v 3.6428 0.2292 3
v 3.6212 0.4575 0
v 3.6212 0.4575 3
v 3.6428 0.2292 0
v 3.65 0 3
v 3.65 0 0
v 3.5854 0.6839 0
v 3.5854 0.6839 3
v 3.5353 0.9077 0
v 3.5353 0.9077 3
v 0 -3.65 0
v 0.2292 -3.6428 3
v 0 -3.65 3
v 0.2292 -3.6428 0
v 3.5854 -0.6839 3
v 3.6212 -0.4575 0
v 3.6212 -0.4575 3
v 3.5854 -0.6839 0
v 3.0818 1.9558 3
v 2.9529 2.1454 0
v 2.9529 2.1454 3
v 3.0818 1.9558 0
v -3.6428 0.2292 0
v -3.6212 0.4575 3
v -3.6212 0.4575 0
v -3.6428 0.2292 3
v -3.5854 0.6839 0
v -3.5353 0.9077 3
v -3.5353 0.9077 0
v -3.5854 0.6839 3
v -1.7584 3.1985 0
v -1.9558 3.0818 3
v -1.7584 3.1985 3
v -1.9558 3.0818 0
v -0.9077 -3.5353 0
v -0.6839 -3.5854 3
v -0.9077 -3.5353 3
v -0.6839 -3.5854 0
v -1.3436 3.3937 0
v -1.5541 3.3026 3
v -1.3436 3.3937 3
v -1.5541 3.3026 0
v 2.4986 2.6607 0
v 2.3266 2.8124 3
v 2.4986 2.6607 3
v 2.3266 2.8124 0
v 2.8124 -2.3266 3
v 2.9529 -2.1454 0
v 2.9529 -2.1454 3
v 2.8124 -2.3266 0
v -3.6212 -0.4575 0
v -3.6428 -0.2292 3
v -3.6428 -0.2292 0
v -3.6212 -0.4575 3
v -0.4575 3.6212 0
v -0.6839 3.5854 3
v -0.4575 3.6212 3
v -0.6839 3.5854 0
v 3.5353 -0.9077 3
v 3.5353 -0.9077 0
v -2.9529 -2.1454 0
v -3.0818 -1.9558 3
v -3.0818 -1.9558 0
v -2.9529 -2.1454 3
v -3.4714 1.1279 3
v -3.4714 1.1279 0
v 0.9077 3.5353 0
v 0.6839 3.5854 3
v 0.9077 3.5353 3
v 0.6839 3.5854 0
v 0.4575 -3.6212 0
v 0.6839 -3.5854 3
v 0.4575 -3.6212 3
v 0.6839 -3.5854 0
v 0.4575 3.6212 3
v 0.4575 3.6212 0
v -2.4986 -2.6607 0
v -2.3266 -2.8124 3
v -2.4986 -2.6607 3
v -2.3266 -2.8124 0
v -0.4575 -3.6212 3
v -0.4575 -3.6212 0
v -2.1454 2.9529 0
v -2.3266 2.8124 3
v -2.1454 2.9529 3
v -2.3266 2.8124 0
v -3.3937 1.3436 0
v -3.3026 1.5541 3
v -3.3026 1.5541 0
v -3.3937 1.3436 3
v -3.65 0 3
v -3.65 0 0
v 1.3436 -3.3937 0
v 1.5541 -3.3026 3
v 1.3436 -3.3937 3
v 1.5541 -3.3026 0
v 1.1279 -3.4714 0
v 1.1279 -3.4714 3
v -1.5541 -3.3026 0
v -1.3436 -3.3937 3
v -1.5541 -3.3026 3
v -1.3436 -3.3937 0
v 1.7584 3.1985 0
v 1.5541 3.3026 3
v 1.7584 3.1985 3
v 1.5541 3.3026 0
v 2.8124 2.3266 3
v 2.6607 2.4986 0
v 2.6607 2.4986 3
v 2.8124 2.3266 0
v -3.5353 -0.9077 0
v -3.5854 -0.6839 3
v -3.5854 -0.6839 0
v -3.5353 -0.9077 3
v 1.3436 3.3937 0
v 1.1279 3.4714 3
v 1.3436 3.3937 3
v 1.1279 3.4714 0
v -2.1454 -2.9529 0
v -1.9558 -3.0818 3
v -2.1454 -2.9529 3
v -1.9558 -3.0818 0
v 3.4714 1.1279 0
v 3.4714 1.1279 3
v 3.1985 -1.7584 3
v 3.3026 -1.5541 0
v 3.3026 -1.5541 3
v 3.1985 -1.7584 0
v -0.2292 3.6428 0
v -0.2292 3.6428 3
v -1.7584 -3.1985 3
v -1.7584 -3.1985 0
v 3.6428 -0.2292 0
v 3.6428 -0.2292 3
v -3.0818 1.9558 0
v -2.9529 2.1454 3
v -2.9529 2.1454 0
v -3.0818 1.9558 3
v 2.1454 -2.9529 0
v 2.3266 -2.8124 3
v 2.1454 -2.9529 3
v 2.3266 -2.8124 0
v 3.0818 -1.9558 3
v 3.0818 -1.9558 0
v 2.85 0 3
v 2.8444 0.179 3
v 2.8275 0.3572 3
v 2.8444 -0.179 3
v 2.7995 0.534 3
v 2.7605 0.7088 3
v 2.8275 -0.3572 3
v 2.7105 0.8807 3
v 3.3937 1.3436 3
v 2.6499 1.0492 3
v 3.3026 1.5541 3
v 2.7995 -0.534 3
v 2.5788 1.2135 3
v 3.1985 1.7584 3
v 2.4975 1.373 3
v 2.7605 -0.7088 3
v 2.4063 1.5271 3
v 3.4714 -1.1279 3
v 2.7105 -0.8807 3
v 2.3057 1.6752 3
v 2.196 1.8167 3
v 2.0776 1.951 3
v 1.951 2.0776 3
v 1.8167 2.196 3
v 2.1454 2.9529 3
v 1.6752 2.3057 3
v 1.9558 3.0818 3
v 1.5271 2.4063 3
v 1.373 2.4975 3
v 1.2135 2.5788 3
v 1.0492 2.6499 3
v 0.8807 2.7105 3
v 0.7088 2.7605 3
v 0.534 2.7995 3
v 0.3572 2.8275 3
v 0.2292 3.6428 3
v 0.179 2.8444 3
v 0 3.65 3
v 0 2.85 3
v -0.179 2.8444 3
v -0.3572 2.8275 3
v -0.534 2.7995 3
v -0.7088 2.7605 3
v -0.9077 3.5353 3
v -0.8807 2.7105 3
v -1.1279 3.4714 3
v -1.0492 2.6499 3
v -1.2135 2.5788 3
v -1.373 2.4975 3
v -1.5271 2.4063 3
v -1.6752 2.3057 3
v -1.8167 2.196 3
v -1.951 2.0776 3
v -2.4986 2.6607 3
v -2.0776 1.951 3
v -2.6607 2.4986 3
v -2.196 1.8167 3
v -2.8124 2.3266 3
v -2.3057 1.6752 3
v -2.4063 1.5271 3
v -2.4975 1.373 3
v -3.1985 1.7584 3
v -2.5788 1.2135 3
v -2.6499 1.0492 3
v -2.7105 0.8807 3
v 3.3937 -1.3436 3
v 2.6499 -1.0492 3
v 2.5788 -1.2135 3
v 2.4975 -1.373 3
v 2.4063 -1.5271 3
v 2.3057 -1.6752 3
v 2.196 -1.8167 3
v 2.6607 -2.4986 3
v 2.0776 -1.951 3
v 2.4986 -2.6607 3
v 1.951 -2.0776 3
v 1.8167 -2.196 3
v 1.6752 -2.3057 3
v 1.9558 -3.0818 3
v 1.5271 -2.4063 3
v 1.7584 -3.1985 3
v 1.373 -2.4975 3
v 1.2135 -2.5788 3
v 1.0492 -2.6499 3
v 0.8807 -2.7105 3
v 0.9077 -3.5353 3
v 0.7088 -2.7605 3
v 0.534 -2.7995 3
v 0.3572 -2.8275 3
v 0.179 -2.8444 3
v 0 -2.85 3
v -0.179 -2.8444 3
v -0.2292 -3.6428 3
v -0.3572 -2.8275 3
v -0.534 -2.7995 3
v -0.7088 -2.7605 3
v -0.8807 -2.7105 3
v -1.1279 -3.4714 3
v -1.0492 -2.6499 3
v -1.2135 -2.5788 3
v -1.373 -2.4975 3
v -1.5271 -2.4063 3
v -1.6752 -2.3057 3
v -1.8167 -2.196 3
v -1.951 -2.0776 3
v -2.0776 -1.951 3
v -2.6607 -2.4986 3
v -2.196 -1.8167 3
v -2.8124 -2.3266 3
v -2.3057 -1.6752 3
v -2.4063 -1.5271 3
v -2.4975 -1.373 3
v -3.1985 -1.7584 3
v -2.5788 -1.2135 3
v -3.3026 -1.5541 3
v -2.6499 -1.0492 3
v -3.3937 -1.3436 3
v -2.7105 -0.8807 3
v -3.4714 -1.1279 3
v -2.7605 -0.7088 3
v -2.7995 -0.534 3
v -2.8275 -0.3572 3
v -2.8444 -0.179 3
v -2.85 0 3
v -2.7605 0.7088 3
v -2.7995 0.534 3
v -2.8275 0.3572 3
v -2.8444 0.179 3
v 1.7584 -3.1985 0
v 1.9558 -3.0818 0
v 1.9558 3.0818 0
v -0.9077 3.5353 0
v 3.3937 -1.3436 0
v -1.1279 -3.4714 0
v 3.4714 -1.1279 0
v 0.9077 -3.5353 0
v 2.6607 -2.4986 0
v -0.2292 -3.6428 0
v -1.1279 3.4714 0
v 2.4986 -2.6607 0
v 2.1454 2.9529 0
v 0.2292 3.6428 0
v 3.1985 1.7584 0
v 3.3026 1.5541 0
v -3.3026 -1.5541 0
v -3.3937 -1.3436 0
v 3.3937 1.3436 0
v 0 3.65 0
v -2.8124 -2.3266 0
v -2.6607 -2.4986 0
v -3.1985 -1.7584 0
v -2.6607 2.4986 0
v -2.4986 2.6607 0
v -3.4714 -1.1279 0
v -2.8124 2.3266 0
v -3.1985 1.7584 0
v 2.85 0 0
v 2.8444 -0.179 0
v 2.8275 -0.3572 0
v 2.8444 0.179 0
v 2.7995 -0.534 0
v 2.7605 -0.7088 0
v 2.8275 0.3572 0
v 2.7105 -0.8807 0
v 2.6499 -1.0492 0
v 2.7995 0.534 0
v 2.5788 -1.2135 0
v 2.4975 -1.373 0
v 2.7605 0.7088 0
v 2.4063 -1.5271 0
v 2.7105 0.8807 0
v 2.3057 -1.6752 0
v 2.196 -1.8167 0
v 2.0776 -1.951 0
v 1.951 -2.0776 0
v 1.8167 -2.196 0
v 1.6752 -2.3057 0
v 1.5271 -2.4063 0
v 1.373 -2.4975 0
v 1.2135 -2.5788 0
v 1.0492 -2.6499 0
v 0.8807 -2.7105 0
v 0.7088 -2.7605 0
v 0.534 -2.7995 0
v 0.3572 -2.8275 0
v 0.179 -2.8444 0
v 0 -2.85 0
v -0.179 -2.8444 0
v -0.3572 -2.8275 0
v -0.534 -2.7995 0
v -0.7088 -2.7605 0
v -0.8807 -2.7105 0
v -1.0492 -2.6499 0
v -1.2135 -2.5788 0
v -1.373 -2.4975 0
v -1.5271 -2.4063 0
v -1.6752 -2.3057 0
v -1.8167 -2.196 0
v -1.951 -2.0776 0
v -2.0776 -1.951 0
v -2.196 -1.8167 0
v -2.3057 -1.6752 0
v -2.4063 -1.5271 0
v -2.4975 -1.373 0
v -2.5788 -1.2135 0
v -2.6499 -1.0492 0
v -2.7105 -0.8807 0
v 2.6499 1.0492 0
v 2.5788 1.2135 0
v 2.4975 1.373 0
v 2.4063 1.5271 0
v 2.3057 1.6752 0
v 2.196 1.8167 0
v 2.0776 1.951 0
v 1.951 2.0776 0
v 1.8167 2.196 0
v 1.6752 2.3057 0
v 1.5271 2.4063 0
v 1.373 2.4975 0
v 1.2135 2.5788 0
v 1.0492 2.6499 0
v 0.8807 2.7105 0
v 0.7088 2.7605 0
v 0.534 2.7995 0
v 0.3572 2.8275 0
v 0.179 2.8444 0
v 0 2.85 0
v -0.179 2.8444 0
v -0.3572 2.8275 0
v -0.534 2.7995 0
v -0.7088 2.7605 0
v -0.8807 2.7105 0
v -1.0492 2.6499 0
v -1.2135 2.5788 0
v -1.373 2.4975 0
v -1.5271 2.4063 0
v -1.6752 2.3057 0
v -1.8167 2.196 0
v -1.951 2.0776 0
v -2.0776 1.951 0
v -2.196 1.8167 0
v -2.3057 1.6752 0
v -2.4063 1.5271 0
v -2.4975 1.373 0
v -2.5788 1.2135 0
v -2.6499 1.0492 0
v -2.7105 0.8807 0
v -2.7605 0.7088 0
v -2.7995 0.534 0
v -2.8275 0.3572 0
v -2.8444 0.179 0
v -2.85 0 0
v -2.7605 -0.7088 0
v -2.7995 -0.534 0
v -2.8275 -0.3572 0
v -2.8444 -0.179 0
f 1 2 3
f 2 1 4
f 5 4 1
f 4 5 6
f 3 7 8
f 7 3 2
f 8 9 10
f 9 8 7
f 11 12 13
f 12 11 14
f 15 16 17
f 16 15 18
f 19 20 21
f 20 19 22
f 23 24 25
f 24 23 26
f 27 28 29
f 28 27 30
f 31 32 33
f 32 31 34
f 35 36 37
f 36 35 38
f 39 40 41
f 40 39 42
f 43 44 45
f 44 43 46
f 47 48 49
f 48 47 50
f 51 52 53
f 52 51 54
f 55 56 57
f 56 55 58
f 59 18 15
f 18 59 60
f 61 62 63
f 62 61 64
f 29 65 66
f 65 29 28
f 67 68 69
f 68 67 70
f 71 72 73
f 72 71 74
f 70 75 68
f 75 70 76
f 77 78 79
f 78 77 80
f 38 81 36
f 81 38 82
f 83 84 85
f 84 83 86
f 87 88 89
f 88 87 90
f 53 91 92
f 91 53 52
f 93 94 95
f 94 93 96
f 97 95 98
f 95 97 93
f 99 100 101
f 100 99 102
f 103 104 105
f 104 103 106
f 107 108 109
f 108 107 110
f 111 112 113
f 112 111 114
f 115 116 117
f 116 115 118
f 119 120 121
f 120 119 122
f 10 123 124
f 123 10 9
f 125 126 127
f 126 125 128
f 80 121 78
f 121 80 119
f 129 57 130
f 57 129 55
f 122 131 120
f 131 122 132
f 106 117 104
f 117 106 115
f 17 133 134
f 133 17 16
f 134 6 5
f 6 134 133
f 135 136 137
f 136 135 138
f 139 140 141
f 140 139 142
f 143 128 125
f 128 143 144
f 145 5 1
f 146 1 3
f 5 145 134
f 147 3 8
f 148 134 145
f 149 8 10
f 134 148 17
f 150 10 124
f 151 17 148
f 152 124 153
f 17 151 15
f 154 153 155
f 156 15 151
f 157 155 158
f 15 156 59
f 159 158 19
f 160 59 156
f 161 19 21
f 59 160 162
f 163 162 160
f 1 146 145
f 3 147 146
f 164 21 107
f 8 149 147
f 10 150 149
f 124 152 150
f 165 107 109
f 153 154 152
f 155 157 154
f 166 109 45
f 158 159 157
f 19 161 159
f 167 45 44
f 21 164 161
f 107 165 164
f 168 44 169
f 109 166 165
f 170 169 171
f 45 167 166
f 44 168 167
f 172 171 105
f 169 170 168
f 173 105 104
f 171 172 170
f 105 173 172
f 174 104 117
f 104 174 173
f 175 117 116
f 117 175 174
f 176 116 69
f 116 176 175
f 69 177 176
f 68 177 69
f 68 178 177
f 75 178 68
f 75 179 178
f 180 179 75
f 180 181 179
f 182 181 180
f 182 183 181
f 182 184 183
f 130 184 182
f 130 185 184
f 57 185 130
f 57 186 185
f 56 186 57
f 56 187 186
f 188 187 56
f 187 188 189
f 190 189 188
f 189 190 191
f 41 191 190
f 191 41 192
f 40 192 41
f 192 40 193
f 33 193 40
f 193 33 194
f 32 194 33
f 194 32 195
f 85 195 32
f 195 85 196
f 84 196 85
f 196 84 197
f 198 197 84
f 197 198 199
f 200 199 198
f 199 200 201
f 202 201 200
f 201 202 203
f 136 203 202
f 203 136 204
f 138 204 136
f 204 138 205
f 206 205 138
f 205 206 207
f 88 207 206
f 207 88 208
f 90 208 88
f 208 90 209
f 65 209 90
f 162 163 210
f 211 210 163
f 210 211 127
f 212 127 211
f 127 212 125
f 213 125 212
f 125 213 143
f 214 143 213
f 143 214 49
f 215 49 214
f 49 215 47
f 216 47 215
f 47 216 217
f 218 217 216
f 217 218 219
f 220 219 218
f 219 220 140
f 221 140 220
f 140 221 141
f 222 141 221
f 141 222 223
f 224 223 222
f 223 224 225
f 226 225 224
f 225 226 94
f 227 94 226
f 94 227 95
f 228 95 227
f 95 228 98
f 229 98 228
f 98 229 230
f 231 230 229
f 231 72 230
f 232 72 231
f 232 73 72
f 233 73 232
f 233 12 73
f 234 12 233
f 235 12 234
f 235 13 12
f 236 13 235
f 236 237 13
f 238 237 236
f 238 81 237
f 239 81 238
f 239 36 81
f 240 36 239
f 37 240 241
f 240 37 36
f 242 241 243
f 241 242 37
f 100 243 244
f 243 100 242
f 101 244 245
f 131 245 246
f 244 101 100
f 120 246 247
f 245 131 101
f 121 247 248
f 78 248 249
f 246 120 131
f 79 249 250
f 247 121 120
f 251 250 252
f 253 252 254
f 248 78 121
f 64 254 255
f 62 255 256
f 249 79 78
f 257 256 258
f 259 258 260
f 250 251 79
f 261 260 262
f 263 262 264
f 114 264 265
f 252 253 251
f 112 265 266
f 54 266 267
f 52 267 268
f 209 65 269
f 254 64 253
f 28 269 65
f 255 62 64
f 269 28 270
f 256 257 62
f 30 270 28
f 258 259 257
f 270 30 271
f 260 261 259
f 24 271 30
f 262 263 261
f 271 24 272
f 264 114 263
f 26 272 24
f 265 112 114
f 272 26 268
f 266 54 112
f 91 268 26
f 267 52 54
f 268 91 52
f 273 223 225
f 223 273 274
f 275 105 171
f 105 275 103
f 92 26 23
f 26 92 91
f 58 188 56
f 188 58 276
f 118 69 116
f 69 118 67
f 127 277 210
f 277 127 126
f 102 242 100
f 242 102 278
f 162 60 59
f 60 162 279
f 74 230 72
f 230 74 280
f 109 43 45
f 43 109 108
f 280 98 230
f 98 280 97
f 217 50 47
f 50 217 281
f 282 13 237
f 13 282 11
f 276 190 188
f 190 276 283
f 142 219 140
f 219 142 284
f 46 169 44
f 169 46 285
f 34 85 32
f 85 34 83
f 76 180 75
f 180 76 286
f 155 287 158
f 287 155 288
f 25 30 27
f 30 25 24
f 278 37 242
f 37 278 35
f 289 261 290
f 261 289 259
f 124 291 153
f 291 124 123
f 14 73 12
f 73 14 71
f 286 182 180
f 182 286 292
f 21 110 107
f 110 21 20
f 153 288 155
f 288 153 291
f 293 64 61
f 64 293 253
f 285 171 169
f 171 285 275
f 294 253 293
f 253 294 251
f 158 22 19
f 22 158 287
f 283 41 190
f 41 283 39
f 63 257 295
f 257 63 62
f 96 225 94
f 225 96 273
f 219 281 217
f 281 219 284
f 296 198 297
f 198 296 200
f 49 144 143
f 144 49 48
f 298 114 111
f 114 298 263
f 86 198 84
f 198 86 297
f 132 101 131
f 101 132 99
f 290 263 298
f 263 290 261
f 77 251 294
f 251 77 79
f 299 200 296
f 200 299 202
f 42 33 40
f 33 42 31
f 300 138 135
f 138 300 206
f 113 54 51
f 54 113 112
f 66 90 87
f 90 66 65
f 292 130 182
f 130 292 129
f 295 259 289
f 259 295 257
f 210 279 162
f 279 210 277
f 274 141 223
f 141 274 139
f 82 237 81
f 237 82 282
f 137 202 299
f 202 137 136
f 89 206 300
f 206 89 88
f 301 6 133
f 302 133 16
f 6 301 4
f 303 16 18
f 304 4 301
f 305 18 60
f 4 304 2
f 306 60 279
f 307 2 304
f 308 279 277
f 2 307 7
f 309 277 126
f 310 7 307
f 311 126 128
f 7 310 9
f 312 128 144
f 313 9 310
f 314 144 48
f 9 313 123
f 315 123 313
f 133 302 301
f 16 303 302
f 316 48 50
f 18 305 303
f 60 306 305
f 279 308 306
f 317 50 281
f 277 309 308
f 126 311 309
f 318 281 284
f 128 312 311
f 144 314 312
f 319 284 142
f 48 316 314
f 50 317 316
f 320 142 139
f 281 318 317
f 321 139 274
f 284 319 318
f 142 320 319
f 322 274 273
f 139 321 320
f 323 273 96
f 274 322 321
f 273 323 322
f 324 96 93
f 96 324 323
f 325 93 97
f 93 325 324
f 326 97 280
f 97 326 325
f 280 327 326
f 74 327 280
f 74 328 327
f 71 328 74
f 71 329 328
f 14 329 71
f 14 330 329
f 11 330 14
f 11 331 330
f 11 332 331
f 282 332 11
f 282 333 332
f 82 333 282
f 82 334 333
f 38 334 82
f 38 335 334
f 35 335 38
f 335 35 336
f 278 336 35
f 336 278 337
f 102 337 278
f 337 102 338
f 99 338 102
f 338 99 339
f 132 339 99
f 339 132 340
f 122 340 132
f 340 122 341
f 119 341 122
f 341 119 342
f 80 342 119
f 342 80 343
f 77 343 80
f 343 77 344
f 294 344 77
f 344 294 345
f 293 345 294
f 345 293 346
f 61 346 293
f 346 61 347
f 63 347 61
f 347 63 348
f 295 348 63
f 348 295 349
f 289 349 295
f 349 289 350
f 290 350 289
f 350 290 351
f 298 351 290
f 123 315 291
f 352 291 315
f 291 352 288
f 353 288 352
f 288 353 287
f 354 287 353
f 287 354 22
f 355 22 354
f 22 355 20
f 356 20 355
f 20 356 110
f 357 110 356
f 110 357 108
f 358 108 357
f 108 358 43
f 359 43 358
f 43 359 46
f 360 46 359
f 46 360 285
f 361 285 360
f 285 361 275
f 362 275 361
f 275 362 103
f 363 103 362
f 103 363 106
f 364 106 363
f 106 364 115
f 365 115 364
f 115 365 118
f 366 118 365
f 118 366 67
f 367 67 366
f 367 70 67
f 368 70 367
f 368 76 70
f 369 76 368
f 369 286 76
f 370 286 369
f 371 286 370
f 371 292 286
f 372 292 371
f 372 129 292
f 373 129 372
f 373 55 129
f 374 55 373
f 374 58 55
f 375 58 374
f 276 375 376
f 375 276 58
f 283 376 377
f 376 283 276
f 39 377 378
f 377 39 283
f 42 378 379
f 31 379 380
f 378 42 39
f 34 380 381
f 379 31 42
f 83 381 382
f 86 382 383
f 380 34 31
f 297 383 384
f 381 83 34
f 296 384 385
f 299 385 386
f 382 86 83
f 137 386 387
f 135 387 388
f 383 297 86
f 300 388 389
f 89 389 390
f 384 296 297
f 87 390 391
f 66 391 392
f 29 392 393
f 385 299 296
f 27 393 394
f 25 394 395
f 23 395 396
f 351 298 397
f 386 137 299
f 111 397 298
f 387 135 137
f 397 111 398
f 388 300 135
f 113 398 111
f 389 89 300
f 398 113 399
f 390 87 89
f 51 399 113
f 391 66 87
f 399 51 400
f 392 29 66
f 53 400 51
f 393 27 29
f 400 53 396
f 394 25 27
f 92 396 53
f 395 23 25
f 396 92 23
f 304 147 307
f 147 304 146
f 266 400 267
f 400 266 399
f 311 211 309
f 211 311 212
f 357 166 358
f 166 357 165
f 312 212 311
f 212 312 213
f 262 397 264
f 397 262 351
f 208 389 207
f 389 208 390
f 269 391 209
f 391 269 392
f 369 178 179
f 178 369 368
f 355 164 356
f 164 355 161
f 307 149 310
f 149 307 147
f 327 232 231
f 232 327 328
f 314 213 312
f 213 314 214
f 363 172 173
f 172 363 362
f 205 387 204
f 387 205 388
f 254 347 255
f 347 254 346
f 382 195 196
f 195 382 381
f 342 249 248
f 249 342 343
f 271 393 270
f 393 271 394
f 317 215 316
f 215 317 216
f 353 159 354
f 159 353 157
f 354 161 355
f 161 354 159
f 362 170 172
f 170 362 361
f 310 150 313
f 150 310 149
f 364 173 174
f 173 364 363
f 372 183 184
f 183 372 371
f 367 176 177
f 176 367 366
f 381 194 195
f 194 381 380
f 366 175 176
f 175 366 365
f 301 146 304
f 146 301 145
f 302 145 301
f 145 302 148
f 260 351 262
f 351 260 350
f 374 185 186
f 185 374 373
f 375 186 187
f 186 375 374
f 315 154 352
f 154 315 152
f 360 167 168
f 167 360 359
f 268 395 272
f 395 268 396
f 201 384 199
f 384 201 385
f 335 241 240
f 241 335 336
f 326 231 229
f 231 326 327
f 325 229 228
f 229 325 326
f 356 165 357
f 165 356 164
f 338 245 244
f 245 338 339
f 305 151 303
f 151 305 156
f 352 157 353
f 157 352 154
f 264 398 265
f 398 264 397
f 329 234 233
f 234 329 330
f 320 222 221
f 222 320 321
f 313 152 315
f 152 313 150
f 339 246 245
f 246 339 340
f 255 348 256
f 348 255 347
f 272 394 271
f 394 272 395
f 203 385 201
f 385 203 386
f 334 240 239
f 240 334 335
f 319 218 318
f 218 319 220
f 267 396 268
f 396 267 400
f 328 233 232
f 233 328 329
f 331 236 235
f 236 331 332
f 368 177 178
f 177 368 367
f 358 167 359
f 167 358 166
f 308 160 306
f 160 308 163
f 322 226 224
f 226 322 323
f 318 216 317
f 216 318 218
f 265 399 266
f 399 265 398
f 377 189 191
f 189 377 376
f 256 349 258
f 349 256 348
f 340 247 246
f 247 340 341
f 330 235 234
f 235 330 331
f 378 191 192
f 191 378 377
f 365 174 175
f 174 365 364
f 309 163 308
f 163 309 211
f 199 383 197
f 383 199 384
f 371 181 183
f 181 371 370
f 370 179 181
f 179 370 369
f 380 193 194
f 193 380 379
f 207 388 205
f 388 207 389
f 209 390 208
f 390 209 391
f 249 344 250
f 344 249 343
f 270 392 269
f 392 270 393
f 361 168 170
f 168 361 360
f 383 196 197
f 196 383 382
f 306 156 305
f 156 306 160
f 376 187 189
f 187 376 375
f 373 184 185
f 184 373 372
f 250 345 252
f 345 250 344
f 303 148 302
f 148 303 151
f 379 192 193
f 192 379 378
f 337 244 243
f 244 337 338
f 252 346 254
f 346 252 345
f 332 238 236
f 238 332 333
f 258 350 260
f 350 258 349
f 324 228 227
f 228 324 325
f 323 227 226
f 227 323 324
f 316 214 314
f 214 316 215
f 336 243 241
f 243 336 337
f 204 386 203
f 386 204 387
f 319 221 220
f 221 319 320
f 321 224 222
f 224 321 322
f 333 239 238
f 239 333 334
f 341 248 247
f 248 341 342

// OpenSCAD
$fn=100;
difference()
{
	cylinder (d=7+0.3,h=3);
	translate ([0,0,-1])
		cylinder (d=5.4+0.3,h=10);
}
